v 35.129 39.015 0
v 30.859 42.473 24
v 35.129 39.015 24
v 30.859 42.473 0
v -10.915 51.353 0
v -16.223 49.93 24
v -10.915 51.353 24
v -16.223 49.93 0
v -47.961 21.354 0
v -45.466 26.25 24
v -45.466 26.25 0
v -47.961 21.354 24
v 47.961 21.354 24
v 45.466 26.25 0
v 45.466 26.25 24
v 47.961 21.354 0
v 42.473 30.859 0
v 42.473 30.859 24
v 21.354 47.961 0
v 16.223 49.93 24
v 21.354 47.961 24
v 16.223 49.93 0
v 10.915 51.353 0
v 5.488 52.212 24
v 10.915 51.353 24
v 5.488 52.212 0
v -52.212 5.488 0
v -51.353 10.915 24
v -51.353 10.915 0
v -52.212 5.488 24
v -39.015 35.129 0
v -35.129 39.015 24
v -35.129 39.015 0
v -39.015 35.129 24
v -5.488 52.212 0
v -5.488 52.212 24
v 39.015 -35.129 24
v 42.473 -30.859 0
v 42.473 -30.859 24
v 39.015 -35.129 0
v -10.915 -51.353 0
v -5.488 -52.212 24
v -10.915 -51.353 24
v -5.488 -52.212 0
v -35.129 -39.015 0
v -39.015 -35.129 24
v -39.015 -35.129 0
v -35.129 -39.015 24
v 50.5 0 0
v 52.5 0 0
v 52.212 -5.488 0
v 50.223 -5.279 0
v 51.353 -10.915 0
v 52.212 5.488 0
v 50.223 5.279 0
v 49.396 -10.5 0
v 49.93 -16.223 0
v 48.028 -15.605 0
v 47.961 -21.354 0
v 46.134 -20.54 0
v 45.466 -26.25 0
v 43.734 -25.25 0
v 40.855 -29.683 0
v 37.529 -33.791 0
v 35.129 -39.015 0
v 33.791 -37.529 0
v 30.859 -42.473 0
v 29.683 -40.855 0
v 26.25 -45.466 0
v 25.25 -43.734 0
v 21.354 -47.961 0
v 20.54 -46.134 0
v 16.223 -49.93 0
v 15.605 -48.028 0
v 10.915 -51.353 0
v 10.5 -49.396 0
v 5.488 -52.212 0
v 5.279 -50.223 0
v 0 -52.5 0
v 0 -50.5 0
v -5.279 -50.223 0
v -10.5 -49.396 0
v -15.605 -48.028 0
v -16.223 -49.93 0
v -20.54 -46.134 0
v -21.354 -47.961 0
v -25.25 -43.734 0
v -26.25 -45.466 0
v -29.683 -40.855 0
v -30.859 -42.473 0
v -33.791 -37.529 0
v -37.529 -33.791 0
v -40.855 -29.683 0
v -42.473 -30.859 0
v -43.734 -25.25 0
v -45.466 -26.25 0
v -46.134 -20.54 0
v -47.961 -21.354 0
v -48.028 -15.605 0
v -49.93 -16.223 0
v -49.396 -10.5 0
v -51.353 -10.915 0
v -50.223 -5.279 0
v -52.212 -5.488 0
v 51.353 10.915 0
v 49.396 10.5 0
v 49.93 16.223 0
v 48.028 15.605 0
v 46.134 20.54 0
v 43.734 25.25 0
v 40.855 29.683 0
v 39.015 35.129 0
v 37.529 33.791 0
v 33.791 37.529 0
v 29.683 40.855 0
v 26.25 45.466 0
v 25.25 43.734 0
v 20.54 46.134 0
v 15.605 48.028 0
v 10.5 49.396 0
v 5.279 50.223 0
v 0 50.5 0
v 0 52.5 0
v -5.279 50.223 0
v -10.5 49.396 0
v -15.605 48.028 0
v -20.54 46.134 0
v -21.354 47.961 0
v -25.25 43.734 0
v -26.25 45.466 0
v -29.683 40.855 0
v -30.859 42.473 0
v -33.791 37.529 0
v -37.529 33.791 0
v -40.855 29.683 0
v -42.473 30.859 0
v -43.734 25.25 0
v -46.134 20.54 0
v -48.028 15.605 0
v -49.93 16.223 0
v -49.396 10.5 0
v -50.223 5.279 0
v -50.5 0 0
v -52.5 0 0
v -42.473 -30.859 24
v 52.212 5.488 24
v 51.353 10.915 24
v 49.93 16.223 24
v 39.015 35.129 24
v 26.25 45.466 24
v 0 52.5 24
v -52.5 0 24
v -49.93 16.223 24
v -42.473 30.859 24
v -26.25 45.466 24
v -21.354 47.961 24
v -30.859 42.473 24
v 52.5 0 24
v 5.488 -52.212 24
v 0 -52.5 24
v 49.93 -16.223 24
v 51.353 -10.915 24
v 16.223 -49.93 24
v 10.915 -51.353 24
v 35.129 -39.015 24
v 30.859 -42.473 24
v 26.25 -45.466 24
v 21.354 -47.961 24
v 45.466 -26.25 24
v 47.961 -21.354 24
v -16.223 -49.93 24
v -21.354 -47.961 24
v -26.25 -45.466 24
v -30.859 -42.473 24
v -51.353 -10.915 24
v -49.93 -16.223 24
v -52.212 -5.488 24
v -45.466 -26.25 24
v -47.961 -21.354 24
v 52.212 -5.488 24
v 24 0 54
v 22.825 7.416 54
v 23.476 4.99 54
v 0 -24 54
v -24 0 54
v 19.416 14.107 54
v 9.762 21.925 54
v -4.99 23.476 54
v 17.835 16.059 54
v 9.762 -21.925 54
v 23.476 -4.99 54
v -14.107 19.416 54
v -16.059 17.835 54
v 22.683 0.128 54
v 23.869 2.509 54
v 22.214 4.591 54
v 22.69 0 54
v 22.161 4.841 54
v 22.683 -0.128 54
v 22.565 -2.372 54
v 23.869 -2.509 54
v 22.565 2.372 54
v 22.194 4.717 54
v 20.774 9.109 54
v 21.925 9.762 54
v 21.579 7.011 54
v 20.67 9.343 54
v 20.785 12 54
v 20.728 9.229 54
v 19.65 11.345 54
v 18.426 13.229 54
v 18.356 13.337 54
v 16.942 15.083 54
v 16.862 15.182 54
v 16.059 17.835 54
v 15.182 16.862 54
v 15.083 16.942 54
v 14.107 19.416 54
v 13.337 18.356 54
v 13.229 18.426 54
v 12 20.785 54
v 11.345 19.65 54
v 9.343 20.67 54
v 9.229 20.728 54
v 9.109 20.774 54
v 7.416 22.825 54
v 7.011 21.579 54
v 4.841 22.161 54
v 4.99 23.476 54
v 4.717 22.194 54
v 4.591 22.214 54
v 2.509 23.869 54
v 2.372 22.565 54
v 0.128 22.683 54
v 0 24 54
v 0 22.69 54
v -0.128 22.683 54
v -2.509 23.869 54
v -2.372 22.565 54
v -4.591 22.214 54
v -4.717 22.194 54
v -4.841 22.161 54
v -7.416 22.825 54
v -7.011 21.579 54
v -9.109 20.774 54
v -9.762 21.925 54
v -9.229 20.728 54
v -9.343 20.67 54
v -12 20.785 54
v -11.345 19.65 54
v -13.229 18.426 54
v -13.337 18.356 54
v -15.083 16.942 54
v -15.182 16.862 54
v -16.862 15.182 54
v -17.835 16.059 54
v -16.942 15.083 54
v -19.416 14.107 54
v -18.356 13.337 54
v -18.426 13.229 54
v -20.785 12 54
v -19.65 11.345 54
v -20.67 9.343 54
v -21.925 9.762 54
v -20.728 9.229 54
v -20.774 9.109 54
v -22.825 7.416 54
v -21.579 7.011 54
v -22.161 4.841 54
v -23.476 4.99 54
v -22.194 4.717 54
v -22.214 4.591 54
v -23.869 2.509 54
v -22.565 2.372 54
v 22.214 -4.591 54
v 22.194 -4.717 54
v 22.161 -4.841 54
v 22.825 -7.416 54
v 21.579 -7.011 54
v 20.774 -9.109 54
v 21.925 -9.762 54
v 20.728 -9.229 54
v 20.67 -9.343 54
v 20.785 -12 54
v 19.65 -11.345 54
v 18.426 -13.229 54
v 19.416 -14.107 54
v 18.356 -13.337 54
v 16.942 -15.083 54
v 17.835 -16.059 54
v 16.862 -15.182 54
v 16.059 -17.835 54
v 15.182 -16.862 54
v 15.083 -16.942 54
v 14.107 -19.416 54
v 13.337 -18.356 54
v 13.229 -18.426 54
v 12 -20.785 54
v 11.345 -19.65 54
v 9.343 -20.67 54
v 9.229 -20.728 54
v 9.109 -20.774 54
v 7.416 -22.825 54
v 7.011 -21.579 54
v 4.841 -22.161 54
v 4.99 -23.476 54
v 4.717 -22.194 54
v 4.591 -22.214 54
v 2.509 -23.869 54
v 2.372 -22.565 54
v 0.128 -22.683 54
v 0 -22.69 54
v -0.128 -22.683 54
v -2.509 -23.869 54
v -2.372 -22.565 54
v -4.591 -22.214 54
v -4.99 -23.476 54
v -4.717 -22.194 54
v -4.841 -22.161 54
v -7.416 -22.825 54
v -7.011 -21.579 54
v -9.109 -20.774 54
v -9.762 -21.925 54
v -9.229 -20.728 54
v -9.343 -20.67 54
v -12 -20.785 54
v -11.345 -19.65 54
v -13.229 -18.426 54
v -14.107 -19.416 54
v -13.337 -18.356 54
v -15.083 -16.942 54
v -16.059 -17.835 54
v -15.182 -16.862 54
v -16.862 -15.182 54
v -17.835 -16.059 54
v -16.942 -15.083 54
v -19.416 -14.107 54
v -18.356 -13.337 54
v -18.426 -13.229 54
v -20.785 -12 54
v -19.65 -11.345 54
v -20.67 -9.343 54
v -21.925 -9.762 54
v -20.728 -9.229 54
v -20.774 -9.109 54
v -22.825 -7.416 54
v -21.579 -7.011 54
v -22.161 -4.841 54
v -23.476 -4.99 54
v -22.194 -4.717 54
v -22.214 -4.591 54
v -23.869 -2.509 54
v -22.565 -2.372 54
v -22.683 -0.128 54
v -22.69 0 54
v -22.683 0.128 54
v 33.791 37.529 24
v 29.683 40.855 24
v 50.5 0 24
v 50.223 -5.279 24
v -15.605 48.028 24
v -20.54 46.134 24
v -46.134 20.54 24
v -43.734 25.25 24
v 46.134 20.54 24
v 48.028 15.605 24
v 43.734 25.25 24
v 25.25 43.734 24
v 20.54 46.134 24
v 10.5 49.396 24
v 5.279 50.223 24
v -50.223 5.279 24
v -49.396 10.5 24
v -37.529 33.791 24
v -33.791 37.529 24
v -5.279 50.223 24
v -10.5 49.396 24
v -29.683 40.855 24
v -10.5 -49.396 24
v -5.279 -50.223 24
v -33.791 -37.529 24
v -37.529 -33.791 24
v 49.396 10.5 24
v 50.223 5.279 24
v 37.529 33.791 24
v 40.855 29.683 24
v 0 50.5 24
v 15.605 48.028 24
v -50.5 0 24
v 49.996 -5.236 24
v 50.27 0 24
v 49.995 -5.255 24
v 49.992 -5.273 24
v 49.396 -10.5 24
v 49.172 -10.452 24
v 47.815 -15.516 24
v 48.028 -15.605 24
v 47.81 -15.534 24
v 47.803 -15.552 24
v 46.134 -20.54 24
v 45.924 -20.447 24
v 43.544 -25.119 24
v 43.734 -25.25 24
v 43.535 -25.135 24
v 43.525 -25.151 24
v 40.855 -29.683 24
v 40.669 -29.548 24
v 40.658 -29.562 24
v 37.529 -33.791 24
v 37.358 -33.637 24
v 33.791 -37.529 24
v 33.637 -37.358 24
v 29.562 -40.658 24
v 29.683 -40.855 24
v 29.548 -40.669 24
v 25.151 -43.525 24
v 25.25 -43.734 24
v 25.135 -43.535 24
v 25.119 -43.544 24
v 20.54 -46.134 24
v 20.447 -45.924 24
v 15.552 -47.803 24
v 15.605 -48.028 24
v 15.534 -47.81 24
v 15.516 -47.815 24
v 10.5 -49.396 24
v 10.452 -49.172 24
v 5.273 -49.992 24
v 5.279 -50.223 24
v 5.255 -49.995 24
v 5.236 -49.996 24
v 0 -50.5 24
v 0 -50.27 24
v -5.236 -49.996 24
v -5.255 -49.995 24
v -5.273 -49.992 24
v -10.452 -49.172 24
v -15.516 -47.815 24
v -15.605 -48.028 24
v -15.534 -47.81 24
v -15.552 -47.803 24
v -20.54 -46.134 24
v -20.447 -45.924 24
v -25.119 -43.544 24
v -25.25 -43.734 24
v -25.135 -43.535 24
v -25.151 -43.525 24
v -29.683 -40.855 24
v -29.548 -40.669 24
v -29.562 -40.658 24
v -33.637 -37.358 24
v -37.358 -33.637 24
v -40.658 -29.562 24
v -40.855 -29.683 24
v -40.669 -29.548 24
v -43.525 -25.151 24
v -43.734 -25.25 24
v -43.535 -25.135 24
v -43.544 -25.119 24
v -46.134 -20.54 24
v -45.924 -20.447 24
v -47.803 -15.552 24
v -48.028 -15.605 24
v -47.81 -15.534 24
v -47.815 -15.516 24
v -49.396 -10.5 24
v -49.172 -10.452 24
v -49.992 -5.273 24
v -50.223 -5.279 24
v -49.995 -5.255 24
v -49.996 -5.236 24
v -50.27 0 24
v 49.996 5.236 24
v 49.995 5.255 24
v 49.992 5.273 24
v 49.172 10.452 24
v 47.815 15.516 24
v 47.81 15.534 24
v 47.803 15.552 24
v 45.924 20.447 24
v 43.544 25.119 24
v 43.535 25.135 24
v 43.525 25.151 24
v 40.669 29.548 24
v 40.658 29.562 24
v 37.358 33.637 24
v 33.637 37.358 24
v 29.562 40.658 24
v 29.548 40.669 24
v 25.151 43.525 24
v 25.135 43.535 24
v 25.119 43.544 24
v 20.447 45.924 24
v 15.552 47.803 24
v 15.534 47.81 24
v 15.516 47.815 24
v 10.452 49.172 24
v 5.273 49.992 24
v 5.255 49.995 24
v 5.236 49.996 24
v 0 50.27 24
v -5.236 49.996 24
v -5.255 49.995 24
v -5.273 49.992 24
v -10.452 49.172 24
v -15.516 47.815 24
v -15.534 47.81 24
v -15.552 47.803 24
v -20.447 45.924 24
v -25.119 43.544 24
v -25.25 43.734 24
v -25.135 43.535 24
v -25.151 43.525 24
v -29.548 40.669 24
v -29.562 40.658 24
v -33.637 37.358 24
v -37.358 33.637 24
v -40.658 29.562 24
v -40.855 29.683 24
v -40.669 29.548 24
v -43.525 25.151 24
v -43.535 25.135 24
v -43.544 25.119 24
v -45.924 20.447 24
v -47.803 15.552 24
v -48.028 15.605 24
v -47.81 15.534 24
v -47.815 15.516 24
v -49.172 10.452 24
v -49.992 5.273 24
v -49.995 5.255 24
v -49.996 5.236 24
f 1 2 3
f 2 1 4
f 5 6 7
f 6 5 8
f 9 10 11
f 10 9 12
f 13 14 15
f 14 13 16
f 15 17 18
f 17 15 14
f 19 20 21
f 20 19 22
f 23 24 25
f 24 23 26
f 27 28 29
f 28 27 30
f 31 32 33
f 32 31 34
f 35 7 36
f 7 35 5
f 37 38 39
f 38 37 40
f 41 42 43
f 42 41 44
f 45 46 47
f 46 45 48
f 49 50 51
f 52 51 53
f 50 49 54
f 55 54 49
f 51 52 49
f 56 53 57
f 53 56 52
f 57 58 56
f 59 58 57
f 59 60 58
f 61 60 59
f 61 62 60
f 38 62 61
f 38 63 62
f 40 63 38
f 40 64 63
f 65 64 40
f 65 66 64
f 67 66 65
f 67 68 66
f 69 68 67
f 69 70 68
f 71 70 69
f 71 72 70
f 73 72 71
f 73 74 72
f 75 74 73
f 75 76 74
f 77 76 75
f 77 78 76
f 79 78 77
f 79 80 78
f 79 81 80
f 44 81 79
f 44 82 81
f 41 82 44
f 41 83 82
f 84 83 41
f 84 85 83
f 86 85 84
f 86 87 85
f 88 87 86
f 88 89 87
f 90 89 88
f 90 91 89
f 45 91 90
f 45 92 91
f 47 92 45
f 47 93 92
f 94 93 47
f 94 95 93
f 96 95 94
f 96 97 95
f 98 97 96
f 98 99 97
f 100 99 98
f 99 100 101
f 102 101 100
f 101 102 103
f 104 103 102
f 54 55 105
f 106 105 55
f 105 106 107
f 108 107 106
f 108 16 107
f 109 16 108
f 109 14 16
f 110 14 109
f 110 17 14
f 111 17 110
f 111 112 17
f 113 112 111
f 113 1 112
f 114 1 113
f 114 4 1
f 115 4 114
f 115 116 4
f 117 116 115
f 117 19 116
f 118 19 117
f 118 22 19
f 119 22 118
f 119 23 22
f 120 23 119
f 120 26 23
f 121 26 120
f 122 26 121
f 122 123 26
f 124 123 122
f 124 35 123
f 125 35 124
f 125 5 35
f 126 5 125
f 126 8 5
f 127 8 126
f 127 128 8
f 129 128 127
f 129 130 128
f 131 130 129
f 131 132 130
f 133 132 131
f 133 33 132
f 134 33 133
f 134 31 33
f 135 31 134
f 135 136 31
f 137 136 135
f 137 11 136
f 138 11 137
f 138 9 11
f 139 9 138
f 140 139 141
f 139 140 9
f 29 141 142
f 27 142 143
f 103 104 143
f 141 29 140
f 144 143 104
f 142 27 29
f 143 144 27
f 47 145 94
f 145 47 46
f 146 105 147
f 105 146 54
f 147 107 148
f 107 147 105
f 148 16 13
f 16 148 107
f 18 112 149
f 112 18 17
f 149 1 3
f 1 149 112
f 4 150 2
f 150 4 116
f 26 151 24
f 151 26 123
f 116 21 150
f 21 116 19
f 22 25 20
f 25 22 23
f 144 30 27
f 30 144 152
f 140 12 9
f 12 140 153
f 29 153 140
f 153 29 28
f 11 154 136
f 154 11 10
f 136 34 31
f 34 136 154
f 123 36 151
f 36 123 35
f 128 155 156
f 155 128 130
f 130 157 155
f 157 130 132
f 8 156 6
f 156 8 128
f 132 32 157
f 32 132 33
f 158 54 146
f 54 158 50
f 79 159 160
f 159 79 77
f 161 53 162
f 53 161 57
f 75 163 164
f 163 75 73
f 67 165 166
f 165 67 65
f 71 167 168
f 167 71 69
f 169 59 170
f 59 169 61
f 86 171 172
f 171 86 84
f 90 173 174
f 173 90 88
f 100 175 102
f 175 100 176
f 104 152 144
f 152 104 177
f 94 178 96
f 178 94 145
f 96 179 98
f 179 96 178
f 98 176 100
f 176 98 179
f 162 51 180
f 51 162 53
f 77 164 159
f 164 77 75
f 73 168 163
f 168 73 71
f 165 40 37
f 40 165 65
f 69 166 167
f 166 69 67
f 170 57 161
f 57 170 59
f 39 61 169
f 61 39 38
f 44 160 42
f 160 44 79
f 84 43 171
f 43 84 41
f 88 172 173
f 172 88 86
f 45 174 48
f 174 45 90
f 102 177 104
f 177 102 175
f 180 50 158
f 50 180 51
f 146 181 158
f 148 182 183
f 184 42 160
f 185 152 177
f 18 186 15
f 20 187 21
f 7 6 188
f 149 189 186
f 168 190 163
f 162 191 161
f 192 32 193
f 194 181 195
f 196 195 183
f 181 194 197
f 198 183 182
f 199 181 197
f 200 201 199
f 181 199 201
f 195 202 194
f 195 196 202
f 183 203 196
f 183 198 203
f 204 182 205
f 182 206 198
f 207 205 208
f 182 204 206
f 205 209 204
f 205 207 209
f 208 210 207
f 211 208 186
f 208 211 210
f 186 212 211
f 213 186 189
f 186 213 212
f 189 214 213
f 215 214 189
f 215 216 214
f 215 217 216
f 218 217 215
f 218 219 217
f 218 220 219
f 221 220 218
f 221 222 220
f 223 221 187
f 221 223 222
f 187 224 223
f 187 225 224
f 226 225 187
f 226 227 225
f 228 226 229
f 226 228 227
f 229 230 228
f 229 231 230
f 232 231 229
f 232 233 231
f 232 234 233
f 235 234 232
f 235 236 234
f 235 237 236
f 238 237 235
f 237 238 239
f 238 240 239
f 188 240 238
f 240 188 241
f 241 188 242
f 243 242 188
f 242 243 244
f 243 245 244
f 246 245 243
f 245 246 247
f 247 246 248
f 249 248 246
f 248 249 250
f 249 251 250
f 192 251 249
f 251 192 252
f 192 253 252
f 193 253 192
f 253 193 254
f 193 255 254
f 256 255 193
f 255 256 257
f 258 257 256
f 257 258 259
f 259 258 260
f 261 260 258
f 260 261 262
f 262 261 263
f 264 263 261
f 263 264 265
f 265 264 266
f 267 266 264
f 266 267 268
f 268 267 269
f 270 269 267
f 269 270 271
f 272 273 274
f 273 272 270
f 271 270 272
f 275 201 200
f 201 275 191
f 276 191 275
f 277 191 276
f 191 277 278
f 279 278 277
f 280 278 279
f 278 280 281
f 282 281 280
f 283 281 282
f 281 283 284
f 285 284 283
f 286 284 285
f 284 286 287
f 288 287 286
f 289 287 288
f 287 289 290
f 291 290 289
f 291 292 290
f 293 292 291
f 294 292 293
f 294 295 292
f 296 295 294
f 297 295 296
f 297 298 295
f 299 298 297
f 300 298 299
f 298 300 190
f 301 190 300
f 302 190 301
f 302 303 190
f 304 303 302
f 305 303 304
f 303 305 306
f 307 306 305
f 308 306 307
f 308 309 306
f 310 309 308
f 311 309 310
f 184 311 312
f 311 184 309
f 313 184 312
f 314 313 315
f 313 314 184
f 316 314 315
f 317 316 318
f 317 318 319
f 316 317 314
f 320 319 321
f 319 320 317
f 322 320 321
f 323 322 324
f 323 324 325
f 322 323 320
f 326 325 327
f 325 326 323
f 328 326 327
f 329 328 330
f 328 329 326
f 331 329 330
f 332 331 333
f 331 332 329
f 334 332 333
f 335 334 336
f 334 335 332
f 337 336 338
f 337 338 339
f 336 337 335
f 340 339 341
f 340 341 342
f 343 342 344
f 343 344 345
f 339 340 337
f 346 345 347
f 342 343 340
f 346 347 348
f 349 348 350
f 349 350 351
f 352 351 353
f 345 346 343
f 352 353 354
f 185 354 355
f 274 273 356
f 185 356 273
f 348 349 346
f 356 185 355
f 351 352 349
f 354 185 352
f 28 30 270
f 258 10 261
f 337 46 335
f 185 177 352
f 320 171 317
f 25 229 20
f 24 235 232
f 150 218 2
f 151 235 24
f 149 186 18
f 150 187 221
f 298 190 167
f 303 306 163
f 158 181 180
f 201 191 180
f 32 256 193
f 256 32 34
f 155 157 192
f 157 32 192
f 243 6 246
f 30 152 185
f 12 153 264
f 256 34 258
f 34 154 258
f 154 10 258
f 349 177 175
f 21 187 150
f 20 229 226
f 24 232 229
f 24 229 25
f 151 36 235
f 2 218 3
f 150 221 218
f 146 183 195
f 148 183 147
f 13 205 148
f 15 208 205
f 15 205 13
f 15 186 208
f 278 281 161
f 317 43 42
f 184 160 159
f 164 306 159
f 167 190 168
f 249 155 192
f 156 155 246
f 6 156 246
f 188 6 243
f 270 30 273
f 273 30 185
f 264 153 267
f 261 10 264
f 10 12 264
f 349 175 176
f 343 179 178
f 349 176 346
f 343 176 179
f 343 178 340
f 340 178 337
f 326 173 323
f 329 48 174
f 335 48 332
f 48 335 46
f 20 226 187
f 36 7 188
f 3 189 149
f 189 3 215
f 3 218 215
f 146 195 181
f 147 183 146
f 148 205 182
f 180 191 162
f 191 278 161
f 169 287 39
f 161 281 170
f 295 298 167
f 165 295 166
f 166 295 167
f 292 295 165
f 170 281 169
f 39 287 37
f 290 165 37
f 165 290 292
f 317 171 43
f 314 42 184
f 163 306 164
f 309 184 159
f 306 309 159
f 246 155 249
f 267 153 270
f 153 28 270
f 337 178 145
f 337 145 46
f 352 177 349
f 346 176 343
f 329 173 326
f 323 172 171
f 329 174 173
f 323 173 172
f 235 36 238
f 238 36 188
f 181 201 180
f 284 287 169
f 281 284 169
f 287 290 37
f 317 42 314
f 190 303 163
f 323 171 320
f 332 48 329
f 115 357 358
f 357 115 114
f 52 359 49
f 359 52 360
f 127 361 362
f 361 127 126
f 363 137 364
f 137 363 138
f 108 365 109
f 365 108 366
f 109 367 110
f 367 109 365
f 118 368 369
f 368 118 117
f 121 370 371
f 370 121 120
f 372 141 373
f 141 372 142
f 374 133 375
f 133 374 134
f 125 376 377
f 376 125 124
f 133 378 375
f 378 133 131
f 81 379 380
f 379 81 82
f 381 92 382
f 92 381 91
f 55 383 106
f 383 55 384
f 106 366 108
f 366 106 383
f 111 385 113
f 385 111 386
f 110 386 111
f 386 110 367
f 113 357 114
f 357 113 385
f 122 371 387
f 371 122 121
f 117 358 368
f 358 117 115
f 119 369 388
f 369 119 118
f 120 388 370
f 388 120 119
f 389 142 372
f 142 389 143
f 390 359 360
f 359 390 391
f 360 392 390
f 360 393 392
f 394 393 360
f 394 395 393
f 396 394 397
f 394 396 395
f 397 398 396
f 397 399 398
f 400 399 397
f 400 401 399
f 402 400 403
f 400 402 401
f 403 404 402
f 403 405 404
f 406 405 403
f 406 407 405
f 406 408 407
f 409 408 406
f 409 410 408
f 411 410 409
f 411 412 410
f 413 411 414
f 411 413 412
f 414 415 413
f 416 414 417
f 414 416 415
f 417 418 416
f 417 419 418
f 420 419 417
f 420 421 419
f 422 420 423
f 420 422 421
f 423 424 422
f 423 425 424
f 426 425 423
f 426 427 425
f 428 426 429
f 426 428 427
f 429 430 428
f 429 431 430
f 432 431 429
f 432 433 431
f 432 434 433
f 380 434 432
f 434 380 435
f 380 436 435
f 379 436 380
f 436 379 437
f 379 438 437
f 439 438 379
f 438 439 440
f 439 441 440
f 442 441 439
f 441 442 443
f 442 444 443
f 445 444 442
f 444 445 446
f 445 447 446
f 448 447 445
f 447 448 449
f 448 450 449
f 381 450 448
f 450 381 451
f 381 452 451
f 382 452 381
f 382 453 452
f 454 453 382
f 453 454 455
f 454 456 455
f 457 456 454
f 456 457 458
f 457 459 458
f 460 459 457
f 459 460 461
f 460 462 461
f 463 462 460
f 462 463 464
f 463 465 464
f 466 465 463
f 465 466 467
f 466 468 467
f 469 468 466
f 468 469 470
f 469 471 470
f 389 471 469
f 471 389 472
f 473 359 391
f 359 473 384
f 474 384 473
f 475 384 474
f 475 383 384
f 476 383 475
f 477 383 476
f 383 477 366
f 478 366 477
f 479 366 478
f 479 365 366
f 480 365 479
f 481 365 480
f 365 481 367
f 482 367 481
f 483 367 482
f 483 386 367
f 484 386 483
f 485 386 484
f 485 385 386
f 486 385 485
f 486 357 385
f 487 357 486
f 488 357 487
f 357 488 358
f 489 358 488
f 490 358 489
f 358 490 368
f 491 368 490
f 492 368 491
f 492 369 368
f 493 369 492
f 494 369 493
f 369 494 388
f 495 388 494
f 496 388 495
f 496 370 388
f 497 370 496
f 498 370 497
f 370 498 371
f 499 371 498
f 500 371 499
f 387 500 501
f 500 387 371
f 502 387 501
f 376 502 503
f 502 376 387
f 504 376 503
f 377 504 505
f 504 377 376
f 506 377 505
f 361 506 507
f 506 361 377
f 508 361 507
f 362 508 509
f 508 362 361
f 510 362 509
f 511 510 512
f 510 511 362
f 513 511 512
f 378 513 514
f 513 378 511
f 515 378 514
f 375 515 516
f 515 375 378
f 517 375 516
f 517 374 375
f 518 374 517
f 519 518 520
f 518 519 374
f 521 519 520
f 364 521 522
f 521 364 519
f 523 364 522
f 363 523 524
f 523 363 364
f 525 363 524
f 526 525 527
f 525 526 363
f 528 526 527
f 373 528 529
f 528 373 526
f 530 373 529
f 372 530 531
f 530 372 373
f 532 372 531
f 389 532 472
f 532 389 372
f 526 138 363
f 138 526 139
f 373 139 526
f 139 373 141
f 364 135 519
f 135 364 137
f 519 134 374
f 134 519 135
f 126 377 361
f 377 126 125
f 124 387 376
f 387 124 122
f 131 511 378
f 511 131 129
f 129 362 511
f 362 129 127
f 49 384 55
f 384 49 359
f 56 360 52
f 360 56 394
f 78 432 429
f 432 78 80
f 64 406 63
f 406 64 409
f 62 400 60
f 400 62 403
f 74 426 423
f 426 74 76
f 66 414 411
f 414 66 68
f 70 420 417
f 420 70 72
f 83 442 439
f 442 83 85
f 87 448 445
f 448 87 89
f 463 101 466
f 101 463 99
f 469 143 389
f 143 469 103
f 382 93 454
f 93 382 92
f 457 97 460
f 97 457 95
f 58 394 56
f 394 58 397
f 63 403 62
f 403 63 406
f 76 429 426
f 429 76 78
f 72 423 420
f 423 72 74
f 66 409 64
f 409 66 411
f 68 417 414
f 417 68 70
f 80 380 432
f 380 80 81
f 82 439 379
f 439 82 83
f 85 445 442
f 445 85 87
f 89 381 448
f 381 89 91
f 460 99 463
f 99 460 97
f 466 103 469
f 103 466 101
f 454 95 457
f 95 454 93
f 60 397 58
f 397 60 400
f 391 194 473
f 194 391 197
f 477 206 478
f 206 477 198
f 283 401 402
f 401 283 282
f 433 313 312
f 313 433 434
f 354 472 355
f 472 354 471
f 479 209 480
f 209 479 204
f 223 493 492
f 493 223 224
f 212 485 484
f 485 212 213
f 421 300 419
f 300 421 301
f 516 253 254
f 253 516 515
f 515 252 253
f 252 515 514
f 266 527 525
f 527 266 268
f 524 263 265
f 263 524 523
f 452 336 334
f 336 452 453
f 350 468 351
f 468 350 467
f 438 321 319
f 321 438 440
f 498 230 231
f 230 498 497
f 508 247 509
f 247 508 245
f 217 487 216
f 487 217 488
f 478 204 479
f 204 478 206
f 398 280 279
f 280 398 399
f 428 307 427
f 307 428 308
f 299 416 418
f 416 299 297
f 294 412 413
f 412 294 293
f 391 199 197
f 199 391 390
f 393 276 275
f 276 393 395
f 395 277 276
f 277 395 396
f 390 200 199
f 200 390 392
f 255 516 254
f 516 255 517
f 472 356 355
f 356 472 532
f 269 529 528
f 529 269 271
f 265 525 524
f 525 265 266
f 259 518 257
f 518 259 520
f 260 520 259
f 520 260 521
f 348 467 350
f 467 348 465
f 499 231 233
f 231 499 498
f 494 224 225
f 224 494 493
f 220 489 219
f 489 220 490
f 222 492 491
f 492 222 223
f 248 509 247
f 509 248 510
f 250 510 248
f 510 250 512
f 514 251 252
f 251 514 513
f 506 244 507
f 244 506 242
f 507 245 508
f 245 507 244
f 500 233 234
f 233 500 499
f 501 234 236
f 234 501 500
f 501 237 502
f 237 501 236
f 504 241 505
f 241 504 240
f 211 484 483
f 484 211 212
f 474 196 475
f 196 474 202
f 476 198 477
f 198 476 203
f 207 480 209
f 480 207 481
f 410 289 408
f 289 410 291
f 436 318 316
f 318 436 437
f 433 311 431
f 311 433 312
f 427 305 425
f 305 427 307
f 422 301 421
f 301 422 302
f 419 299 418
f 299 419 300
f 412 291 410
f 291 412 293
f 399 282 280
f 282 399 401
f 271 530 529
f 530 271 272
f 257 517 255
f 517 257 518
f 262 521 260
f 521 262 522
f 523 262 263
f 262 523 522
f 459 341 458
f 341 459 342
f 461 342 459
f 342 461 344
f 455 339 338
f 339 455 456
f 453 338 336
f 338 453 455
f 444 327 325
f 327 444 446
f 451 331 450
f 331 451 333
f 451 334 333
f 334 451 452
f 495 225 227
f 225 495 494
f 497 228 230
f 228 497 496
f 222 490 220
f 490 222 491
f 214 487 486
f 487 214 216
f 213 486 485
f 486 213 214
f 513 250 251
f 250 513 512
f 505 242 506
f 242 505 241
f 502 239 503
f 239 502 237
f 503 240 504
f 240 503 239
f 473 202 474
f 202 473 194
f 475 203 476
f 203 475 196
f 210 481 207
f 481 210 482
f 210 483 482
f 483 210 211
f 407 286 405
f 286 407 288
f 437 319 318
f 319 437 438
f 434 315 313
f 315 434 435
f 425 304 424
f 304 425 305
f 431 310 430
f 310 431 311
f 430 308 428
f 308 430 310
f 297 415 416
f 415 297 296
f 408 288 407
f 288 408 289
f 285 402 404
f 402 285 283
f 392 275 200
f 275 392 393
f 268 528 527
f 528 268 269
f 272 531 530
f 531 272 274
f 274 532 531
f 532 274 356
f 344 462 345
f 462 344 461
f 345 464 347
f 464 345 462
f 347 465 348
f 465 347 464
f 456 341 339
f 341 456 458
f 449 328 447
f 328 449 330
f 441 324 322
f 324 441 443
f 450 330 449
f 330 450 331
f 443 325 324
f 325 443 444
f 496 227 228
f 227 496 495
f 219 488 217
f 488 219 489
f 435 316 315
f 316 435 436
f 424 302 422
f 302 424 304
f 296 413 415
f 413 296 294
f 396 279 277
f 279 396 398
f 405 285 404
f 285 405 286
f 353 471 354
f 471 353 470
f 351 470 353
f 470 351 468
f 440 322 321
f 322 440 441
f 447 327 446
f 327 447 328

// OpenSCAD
// Execute
DownAdapter(101, 24, 2, 30, 48, 5, true);

// Modules
module DownAdapter(base_dia_ID, base_h, wall, cone_h, tail_dia_OD, tail_h, center_flag) {
    difference() {
        union() {  // create base structure
            // create base
            translate([0, 0, base_h / 2])
                cylinder(h = base_h, r1 = (base_dia_ID / 2) + wall, r2 = (base_dia_ID / 2) + wall, $fn = 60, center = center_flag);

            // create tail
            translate([0, 0, base_h + (cone_h / 2)])
                cylinder(h = cone_h, r1 = (base_dia_ID / 2) + wall, r2 = tail_dia_OD / 2, $fn = 60, center = center_flag);
        } // end union

        // start subtraction of difference
        // remove base inside
        translate([0, 0, (base_h / 2) - 0.5])
            cylinder(h = base_h + 1, r = base_dia_ID / 2, $fn = 60, center = center_flag);

        // remove cone inside
        translate([0, 0, base_h + (cone_h / 2) + 0.25])
            cylinder(h = cone_h + 1, r1 = base_dia_ID / 2, r2 = (tail_dia_OD / 2) - wall, $fn = 60, center = center_flag);

        // remove tail inside
        translate([0, 0, base_h + cone_h + (tail_h / 2) + 0.5])
            cylinder(h = tail_h + 1, r = (tail_dia_OD / 2) - wall, $fn = 60, center = center_flag);
    } // end difference
} // end module
